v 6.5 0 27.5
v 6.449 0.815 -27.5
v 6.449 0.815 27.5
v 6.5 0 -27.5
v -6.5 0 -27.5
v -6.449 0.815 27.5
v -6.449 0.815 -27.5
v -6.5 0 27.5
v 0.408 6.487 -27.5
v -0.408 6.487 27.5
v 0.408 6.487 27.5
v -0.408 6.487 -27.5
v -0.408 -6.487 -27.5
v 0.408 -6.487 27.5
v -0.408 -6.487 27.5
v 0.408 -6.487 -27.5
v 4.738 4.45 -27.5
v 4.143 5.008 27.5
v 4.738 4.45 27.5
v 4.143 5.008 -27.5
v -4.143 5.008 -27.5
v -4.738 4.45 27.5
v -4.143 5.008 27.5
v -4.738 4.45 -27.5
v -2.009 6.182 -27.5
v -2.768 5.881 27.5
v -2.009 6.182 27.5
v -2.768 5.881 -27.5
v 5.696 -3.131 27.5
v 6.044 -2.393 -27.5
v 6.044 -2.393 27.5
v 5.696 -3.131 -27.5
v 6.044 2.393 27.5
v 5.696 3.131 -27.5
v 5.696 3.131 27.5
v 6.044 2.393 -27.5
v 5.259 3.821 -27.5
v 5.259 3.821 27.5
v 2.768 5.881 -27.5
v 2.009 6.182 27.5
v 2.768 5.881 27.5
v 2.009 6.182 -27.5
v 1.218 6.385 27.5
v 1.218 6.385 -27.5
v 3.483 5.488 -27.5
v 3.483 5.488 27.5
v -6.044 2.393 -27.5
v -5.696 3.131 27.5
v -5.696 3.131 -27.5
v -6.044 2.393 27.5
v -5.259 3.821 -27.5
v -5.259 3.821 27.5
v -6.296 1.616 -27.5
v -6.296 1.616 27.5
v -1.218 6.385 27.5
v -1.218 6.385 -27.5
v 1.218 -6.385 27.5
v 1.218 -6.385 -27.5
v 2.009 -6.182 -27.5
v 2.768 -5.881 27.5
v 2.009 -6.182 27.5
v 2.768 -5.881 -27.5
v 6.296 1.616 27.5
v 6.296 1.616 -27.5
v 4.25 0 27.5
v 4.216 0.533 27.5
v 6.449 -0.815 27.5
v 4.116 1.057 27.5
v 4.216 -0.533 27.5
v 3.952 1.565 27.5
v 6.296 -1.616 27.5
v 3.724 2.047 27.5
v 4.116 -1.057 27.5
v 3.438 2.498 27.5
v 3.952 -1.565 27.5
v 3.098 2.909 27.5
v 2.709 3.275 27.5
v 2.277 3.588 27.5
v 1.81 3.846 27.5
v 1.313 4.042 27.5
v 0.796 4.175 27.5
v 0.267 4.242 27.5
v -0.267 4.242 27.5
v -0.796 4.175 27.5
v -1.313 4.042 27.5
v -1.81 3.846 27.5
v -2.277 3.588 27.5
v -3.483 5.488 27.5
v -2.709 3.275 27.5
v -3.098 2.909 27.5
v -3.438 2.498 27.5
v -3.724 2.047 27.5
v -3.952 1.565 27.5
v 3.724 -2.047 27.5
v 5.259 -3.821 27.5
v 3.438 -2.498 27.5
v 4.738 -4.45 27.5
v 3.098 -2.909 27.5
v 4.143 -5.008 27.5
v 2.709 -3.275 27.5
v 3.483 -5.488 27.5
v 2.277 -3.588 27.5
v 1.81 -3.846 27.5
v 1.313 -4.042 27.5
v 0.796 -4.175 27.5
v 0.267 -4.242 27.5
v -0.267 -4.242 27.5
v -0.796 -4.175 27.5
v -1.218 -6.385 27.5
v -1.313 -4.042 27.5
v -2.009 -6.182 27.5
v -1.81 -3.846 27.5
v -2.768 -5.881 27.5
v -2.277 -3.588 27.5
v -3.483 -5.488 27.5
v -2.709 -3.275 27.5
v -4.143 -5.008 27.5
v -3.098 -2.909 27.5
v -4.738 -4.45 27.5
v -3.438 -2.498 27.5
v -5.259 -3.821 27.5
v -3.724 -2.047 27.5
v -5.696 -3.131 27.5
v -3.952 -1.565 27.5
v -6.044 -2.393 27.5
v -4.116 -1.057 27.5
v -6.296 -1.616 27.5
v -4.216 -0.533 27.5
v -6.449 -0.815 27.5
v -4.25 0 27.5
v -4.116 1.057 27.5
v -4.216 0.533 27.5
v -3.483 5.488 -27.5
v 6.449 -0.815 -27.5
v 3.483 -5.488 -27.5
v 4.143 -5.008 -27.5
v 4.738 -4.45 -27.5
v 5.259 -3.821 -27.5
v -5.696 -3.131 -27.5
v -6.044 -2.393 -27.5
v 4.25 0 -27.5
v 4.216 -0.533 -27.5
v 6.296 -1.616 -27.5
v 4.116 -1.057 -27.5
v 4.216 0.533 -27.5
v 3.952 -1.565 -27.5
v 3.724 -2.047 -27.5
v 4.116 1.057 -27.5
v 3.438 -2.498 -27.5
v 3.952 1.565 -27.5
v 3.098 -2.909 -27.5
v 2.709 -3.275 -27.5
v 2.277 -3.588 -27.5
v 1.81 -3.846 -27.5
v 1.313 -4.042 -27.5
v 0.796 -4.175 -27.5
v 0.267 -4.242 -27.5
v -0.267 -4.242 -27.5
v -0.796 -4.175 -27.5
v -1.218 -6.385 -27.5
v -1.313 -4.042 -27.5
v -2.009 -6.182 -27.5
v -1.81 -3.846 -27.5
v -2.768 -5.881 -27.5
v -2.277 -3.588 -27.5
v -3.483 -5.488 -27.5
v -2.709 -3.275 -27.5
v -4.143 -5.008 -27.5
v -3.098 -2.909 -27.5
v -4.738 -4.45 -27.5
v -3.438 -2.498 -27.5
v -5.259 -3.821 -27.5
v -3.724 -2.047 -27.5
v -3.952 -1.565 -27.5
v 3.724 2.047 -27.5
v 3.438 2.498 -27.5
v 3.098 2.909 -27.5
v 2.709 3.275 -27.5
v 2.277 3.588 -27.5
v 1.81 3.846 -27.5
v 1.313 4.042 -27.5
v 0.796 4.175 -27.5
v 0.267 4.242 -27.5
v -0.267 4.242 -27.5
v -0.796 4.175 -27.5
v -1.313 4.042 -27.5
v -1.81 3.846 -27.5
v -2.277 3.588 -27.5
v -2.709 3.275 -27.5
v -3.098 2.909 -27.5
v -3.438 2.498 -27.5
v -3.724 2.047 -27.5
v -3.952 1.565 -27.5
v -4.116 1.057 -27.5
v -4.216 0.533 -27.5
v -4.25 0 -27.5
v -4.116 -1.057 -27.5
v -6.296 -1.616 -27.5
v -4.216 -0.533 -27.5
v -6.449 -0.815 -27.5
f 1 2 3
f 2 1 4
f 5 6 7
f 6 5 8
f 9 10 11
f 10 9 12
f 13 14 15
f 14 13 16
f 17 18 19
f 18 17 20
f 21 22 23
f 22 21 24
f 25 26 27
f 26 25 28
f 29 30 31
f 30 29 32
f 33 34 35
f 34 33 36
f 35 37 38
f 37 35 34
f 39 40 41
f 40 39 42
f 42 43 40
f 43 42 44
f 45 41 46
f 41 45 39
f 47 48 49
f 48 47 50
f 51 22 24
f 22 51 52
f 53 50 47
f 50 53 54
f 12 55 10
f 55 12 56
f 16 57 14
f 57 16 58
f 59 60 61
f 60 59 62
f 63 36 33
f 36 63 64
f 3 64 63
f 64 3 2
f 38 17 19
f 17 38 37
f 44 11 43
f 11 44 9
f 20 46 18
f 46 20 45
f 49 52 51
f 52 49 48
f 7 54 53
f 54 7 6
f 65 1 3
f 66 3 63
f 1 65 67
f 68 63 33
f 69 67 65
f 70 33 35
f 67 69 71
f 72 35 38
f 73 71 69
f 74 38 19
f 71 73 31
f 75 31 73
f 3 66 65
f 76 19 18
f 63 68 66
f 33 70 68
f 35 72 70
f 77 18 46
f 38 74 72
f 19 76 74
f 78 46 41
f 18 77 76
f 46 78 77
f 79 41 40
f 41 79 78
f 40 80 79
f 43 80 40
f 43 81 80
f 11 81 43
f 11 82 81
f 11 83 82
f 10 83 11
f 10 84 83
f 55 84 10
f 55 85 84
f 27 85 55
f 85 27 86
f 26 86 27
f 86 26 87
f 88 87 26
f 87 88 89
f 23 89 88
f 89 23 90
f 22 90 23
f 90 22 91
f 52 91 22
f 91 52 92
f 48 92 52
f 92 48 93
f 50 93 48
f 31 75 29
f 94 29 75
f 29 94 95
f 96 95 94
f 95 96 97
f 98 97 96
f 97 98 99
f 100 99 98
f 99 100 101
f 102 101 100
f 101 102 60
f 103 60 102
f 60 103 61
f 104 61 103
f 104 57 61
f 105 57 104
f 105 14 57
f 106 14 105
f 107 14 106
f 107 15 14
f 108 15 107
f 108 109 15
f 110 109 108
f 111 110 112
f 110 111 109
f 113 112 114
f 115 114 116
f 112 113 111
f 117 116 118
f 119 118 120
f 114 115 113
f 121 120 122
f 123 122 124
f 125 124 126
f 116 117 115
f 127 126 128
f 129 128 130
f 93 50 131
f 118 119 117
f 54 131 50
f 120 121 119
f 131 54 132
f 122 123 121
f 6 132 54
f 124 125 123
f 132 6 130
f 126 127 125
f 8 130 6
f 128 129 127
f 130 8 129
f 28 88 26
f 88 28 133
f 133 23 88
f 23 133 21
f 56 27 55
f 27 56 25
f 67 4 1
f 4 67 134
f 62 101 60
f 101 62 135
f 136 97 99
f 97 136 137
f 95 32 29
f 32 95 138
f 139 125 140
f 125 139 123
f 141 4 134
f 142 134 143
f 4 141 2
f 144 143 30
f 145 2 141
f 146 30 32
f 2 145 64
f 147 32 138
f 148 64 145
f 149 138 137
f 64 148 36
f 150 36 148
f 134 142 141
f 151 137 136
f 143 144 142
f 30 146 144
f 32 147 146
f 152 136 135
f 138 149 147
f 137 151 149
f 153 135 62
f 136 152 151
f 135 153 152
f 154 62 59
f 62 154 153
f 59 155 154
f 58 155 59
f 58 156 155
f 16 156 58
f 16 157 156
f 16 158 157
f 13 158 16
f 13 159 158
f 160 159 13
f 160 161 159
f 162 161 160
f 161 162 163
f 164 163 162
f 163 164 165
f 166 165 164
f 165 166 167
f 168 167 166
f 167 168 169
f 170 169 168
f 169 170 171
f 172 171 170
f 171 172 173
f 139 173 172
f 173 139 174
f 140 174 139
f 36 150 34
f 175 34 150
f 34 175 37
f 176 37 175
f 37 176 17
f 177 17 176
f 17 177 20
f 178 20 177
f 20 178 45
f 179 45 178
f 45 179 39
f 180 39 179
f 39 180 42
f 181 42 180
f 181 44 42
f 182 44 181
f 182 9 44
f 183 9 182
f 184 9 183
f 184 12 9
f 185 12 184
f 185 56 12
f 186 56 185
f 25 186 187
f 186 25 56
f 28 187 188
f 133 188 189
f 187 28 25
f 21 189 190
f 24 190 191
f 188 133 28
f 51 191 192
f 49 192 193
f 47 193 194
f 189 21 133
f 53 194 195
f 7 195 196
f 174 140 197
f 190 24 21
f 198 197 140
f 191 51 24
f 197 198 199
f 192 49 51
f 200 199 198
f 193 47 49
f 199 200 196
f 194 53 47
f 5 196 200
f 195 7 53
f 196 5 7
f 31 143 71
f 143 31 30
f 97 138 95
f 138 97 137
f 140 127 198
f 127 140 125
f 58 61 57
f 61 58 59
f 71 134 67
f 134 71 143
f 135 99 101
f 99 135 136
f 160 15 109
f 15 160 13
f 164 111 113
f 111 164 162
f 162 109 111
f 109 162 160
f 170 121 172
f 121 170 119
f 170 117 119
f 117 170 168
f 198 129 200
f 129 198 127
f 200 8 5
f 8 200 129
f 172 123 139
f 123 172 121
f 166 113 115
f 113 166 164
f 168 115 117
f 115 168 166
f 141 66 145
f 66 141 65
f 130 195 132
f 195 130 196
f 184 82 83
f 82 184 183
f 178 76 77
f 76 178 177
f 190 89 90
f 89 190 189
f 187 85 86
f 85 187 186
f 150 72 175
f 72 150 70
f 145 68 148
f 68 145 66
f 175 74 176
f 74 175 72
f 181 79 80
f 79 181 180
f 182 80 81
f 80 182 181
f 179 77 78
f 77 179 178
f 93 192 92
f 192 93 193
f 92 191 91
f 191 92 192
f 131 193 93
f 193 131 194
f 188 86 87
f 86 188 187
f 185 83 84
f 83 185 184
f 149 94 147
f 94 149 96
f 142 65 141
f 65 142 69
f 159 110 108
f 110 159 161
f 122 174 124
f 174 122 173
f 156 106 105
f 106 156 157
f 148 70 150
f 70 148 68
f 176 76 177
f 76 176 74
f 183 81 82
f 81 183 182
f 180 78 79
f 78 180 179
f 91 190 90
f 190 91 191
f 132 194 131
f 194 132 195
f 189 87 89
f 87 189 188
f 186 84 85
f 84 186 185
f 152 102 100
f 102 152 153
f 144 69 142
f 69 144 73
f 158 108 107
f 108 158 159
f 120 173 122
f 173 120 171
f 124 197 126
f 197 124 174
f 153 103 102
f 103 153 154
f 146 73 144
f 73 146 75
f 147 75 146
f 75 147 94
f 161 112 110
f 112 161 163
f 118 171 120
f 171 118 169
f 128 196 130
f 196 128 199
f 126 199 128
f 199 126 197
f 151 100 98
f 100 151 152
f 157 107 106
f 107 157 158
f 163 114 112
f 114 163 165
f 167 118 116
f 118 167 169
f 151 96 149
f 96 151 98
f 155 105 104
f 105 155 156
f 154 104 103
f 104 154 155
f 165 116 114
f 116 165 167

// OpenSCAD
$fn = 50;


difference() {
	union() {
		translate(v = [0, 0, -27.5000000000]) {
			cylinder(h = 55, r = 6.5000000000);
		}
	}
	union() {
		translate(v = [0, 0, -100.0000000000]) {
			cylinder(h = 200, r = 4.2500000000);
		}
	}
}
